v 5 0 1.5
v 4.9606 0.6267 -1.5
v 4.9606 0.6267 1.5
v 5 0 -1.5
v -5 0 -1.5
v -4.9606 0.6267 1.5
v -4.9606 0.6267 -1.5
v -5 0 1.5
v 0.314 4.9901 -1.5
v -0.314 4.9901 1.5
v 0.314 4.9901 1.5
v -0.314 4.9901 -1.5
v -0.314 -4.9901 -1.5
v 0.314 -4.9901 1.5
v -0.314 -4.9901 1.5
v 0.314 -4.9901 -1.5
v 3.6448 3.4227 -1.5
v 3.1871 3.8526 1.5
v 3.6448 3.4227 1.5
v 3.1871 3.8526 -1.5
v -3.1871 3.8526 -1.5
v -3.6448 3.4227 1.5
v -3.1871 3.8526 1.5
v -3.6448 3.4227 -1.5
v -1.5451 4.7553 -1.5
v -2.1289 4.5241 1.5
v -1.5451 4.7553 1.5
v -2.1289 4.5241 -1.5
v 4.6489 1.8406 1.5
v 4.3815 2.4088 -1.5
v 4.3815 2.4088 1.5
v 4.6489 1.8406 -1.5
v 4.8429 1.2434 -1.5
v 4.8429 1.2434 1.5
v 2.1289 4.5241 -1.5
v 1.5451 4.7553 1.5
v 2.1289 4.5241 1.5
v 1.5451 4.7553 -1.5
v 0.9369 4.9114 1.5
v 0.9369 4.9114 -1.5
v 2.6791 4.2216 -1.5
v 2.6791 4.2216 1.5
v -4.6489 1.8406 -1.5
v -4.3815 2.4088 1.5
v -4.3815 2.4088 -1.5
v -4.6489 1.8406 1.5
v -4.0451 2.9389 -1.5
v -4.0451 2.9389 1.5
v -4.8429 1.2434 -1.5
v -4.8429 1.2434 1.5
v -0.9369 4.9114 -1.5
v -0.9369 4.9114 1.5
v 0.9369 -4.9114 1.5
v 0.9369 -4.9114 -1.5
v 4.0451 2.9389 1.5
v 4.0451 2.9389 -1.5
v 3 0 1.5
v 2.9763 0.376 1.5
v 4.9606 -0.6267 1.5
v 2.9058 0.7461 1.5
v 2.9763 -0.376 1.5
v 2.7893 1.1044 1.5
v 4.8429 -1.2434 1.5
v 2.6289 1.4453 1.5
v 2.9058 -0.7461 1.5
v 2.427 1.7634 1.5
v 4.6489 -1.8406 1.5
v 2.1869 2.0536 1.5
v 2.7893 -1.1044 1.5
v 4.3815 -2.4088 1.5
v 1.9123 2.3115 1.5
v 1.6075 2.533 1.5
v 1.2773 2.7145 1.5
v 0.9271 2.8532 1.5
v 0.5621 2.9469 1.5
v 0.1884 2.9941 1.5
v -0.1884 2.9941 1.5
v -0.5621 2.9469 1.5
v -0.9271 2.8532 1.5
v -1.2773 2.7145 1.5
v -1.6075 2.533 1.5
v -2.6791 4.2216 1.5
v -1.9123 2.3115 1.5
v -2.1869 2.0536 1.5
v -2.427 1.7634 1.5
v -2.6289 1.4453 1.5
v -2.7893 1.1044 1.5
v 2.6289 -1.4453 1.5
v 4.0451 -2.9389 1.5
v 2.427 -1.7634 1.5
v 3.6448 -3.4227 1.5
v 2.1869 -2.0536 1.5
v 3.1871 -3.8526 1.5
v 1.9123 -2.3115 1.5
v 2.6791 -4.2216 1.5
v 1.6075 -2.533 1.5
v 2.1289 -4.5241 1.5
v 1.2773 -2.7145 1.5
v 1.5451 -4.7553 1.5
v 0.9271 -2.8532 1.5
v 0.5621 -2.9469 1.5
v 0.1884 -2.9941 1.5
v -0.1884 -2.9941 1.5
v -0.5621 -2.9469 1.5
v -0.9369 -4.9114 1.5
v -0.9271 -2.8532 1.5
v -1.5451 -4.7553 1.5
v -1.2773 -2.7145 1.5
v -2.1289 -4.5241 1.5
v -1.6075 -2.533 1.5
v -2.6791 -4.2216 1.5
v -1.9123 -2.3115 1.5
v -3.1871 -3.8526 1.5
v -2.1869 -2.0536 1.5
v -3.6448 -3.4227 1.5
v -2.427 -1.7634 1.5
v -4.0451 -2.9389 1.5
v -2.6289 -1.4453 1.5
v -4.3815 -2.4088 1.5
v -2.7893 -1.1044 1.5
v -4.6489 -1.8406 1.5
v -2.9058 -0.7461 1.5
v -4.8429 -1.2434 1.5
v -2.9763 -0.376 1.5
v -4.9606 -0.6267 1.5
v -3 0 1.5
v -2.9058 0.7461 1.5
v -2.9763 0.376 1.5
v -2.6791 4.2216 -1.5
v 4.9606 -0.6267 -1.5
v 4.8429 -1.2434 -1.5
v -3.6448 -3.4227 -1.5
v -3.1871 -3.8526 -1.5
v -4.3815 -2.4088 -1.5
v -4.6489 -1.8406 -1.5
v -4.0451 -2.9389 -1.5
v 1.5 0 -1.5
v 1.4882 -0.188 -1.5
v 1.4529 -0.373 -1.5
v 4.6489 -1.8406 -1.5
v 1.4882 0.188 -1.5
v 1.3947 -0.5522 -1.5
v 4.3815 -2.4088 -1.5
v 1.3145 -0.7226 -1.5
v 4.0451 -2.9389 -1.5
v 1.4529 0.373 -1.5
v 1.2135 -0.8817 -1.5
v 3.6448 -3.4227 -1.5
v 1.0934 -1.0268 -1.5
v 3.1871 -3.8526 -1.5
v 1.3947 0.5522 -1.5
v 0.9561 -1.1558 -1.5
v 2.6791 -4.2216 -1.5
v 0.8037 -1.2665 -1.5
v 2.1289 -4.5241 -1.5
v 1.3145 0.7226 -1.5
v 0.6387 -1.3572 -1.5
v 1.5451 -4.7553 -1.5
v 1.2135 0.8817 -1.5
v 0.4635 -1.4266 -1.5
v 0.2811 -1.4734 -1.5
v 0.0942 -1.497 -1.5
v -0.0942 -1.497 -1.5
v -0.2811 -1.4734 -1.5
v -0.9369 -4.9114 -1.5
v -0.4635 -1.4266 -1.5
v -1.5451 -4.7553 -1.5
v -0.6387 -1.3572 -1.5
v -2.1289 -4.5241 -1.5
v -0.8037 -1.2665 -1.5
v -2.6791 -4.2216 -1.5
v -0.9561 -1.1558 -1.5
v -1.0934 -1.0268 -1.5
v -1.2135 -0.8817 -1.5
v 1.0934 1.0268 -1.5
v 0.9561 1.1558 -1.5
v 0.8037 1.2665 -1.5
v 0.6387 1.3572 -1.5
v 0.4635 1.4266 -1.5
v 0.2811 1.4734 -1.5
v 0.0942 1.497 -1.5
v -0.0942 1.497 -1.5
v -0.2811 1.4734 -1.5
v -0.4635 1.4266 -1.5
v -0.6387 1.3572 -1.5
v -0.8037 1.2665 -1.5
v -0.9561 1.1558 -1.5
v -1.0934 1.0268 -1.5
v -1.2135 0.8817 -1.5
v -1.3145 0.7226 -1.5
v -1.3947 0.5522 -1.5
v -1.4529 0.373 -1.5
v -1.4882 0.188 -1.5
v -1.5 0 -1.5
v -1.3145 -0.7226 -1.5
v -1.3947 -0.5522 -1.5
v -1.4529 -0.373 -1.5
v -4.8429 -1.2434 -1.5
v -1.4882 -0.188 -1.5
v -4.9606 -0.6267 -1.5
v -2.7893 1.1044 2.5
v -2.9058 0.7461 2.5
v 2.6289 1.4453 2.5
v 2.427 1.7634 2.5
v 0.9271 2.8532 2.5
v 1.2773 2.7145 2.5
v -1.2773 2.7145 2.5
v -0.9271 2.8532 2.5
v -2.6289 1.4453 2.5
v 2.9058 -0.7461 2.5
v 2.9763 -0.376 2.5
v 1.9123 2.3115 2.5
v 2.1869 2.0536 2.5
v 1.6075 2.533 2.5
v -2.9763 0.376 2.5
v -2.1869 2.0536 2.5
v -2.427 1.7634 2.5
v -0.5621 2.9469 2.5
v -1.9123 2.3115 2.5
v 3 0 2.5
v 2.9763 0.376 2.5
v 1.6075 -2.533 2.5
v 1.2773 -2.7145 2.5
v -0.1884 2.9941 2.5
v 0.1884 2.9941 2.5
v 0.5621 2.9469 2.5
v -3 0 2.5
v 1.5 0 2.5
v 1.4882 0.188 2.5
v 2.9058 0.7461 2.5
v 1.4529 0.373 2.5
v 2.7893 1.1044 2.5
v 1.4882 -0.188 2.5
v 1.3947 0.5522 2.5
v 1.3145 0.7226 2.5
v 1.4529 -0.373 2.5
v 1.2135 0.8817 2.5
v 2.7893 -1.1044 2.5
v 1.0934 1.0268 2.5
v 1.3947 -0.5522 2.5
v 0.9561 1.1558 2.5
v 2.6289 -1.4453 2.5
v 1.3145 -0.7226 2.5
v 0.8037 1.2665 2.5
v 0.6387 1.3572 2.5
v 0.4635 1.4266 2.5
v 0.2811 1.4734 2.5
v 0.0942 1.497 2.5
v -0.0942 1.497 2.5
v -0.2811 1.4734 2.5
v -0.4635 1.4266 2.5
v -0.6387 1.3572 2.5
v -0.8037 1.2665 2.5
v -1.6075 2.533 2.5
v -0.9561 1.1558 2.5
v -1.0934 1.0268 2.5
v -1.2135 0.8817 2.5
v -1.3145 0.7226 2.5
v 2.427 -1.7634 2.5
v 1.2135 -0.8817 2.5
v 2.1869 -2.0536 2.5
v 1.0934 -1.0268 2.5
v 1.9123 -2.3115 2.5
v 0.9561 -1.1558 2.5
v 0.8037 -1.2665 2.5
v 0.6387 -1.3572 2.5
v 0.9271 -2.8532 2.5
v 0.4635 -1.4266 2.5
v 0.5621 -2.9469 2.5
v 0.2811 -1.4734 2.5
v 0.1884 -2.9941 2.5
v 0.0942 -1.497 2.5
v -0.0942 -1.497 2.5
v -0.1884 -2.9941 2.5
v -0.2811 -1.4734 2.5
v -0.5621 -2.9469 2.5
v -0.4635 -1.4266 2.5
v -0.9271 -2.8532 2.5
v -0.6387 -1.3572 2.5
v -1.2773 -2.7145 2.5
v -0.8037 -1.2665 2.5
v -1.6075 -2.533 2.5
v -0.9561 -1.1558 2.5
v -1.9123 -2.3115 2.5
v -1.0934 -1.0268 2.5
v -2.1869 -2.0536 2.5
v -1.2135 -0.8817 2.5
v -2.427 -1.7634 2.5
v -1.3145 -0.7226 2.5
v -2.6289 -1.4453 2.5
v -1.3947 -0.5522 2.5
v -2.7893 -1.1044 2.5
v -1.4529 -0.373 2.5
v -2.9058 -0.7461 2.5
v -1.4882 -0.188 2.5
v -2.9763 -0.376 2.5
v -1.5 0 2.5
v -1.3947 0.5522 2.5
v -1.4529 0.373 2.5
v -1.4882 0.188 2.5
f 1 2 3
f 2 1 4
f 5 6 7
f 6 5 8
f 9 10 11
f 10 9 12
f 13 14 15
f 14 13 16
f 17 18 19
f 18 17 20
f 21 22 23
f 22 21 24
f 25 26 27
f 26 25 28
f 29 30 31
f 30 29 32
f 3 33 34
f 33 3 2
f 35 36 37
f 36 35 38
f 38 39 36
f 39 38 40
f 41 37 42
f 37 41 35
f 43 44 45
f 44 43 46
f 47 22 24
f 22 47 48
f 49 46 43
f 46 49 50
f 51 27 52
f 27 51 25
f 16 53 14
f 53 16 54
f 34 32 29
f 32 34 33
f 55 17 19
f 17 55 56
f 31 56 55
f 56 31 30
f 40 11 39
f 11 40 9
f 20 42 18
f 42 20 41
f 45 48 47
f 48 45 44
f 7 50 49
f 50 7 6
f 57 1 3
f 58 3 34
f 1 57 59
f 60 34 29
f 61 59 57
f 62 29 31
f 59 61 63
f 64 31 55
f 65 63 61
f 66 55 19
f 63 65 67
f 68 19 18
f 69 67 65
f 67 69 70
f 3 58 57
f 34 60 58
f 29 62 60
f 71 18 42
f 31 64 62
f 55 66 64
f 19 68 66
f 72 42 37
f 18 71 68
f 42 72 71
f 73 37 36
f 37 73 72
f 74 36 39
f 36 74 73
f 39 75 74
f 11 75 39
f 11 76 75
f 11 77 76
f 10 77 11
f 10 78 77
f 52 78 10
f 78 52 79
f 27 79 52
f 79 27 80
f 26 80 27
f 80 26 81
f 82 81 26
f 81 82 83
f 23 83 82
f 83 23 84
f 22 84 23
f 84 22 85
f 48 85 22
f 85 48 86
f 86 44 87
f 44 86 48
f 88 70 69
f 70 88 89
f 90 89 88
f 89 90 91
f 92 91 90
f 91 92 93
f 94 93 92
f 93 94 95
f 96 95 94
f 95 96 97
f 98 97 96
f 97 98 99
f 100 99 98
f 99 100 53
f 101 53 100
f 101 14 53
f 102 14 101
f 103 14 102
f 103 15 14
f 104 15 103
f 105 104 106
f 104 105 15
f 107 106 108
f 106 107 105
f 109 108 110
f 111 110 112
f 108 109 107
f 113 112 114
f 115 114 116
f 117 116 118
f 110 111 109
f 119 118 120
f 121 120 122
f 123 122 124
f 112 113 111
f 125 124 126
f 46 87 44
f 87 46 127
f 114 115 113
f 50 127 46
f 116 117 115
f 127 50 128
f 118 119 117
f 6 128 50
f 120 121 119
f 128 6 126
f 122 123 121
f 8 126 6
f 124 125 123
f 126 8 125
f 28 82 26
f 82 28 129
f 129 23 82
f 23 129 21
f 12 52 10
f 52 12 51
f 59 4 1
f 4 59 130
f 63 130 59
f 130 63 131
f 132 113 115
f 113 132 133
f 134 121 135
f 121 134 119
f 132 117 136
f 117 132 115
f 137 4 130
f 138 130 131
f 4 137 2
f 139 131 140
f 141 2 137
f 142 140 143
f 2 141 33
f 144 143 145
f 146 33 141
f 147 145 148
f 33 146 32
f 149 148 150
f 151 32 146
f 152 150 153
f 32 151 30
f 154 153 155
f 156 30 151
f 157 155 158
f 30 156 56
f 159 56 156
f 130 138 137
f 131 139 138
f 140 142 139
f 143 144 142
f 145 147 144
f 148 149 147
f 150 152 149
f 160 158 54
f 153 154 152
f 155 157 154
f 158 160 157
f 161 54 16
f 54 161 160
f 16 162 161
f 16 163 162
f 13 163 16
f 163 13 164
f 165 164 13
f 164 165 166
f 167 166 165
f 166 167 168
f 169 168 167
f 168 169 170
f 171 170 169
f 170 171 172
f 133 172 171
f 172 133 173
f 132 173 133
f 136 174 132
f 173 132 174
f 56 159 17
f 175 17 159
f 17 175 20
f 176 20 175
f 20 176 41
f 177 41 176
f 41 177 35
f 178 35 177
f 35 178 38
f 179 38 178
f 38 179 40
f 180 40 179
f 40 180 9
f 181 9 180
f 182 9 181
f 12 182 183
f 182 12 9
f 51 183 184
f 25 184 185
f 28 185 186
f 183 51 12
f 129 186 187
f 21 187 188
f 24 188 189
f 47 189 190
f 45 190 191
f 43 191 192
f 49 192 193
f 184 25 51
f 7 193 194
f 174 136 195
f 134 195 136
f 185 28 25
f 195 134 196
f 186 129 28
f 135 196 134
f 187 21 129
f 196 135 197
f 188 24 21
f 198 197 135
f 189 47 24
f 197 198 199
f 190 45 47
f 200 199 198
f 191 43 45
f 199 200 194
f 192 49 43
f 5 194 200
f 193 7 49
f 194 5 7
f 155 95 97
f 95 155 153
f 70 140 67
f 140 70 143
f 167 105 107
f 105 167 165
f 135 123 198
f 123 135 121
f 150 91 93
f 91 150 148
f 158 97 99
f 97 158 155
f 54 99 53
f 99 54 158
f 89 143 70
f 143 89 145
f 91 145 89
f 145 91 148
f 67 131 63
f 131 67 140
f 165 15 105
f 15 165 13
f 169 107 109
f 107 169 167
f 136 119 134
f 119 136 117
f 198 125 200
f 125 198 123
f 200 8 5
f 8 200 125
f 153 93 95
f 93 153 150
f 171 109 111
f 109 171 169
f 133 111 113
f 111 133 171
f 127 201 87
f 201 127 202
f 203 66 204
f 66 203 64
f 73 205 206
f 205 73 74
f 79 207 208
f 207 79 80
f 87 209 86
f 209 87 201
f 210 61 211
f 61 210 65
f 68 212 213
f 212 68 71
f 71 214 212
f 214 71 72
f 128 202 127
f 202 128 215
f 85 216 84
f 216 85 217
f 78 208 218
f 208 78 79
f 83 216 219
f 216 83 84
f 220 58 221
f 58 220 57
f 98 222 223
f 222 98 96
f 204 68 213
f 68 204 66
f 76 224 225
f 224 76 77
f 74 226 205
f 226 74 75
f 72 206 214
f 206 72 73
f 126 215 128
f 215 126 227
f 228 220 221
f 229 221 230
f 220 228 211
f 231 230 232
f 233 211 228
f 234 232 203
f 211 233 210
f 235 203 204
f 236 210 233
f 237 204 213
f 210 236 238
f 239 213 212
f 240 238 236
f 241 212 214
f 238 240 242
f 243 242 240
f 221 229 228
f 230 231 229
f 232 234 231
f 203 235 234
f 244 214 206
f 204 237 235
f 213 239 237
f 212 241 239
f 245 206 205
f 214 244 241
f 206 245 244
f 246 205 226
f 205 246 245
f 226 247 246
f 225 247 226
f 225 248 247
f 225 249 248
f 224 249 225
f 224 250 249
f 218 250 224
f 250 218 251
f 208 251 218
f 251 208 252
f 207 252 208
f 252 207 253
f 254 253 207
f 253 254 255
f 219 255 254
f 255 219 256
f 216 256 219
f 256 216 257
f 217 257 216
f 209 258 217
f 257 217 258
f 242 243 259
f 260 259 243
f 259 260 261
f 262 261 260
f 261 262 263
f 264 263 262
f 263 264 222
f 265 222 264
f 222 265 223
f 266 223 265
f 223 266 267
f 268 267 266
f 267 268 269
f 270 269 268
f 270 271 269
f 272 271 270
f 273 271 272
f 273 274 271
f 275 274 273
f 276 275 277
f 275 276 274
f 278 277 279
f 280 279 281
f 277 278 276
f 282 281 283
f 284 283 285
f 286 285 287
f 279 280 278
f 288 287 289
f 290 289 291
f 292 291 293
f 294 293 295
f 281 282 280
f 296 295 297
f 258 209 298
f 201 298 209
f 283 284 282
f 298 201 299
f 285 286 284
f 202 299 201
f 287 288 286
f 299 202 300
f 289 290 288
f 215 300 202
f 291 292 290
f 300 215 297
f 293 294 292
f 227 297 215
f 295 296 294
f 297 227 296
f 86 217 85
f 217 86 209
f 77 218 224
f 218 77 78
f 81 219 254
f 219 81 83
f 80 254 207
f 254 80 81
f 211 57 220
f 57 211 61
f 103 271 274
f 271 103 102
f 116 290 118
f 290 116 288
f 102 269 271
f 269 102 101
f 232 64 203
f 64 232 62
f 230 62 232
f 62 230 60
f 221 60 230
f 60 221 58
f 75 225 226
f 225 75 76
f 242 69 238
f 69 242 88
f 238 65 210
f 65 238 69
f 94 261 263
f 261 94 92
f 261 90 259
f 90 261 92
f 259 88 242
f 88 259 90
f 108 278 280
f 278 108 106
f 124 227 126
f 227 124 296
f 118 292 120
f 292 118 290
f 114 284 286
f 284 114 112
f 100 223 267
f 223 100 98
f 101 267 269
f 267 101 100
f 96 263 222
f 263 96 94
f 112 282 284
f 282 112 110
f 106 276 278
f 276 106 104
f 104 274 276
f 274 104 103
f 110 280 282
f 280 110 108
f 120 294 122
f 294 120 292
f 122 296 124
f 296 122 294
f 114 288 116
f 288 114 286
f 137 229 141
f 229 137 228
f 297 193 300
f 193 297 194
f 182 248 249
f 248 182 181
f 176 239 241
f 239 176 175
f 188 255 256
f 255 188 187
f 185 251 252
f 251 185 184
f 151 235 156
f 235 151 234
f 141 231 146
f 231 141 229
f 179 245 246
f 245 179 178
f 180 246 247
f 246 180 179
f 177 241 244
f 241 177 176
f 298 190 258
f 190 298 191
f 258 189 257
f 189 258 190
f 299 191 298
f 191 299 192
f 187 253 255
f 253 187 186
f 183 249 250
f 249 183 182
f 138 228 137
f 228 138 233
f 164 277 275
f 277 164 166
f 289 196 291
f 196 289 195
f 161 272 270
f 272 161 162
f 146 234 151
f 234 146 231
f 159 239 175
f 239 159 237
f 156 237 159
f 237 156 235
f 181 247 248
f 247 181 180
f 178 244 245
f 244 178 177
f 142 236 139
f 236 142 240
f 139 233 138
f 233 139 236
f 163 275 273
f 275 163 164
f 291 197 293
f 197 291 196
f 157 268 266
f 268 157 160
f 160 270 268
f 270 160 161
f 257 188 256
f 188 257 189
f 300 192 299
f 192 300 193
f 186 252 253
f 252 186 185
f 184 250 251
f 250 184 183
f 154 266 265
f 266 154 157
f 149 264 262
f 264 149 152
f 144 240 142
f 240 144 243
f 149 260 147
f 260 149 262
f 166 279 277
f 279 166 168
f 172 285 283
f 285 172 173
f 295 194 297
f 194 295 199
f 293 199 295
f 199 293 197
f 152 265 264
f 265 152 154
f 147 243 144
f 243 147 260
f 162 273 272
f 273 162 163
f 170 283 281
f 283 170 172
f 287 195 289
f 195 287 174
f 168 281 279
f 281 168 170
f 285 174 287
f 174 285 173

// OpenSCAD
$fn = 50;


difference() {
	union() {
		translate(v = [0, 0, -1.5000000000]) {
			cylinder(h = 3, r = 5.0000000000);
		}
		translate(v = [0, 0, -1.5000000000]) {
			cylinder(h = 4, r = 3.0000000000);
		}
	}
	union() {
		translate(v = [0, 0, -100.0000000000]) {
			cylinder(h = 200, r = 1.5000000000);
		}
	}
}
